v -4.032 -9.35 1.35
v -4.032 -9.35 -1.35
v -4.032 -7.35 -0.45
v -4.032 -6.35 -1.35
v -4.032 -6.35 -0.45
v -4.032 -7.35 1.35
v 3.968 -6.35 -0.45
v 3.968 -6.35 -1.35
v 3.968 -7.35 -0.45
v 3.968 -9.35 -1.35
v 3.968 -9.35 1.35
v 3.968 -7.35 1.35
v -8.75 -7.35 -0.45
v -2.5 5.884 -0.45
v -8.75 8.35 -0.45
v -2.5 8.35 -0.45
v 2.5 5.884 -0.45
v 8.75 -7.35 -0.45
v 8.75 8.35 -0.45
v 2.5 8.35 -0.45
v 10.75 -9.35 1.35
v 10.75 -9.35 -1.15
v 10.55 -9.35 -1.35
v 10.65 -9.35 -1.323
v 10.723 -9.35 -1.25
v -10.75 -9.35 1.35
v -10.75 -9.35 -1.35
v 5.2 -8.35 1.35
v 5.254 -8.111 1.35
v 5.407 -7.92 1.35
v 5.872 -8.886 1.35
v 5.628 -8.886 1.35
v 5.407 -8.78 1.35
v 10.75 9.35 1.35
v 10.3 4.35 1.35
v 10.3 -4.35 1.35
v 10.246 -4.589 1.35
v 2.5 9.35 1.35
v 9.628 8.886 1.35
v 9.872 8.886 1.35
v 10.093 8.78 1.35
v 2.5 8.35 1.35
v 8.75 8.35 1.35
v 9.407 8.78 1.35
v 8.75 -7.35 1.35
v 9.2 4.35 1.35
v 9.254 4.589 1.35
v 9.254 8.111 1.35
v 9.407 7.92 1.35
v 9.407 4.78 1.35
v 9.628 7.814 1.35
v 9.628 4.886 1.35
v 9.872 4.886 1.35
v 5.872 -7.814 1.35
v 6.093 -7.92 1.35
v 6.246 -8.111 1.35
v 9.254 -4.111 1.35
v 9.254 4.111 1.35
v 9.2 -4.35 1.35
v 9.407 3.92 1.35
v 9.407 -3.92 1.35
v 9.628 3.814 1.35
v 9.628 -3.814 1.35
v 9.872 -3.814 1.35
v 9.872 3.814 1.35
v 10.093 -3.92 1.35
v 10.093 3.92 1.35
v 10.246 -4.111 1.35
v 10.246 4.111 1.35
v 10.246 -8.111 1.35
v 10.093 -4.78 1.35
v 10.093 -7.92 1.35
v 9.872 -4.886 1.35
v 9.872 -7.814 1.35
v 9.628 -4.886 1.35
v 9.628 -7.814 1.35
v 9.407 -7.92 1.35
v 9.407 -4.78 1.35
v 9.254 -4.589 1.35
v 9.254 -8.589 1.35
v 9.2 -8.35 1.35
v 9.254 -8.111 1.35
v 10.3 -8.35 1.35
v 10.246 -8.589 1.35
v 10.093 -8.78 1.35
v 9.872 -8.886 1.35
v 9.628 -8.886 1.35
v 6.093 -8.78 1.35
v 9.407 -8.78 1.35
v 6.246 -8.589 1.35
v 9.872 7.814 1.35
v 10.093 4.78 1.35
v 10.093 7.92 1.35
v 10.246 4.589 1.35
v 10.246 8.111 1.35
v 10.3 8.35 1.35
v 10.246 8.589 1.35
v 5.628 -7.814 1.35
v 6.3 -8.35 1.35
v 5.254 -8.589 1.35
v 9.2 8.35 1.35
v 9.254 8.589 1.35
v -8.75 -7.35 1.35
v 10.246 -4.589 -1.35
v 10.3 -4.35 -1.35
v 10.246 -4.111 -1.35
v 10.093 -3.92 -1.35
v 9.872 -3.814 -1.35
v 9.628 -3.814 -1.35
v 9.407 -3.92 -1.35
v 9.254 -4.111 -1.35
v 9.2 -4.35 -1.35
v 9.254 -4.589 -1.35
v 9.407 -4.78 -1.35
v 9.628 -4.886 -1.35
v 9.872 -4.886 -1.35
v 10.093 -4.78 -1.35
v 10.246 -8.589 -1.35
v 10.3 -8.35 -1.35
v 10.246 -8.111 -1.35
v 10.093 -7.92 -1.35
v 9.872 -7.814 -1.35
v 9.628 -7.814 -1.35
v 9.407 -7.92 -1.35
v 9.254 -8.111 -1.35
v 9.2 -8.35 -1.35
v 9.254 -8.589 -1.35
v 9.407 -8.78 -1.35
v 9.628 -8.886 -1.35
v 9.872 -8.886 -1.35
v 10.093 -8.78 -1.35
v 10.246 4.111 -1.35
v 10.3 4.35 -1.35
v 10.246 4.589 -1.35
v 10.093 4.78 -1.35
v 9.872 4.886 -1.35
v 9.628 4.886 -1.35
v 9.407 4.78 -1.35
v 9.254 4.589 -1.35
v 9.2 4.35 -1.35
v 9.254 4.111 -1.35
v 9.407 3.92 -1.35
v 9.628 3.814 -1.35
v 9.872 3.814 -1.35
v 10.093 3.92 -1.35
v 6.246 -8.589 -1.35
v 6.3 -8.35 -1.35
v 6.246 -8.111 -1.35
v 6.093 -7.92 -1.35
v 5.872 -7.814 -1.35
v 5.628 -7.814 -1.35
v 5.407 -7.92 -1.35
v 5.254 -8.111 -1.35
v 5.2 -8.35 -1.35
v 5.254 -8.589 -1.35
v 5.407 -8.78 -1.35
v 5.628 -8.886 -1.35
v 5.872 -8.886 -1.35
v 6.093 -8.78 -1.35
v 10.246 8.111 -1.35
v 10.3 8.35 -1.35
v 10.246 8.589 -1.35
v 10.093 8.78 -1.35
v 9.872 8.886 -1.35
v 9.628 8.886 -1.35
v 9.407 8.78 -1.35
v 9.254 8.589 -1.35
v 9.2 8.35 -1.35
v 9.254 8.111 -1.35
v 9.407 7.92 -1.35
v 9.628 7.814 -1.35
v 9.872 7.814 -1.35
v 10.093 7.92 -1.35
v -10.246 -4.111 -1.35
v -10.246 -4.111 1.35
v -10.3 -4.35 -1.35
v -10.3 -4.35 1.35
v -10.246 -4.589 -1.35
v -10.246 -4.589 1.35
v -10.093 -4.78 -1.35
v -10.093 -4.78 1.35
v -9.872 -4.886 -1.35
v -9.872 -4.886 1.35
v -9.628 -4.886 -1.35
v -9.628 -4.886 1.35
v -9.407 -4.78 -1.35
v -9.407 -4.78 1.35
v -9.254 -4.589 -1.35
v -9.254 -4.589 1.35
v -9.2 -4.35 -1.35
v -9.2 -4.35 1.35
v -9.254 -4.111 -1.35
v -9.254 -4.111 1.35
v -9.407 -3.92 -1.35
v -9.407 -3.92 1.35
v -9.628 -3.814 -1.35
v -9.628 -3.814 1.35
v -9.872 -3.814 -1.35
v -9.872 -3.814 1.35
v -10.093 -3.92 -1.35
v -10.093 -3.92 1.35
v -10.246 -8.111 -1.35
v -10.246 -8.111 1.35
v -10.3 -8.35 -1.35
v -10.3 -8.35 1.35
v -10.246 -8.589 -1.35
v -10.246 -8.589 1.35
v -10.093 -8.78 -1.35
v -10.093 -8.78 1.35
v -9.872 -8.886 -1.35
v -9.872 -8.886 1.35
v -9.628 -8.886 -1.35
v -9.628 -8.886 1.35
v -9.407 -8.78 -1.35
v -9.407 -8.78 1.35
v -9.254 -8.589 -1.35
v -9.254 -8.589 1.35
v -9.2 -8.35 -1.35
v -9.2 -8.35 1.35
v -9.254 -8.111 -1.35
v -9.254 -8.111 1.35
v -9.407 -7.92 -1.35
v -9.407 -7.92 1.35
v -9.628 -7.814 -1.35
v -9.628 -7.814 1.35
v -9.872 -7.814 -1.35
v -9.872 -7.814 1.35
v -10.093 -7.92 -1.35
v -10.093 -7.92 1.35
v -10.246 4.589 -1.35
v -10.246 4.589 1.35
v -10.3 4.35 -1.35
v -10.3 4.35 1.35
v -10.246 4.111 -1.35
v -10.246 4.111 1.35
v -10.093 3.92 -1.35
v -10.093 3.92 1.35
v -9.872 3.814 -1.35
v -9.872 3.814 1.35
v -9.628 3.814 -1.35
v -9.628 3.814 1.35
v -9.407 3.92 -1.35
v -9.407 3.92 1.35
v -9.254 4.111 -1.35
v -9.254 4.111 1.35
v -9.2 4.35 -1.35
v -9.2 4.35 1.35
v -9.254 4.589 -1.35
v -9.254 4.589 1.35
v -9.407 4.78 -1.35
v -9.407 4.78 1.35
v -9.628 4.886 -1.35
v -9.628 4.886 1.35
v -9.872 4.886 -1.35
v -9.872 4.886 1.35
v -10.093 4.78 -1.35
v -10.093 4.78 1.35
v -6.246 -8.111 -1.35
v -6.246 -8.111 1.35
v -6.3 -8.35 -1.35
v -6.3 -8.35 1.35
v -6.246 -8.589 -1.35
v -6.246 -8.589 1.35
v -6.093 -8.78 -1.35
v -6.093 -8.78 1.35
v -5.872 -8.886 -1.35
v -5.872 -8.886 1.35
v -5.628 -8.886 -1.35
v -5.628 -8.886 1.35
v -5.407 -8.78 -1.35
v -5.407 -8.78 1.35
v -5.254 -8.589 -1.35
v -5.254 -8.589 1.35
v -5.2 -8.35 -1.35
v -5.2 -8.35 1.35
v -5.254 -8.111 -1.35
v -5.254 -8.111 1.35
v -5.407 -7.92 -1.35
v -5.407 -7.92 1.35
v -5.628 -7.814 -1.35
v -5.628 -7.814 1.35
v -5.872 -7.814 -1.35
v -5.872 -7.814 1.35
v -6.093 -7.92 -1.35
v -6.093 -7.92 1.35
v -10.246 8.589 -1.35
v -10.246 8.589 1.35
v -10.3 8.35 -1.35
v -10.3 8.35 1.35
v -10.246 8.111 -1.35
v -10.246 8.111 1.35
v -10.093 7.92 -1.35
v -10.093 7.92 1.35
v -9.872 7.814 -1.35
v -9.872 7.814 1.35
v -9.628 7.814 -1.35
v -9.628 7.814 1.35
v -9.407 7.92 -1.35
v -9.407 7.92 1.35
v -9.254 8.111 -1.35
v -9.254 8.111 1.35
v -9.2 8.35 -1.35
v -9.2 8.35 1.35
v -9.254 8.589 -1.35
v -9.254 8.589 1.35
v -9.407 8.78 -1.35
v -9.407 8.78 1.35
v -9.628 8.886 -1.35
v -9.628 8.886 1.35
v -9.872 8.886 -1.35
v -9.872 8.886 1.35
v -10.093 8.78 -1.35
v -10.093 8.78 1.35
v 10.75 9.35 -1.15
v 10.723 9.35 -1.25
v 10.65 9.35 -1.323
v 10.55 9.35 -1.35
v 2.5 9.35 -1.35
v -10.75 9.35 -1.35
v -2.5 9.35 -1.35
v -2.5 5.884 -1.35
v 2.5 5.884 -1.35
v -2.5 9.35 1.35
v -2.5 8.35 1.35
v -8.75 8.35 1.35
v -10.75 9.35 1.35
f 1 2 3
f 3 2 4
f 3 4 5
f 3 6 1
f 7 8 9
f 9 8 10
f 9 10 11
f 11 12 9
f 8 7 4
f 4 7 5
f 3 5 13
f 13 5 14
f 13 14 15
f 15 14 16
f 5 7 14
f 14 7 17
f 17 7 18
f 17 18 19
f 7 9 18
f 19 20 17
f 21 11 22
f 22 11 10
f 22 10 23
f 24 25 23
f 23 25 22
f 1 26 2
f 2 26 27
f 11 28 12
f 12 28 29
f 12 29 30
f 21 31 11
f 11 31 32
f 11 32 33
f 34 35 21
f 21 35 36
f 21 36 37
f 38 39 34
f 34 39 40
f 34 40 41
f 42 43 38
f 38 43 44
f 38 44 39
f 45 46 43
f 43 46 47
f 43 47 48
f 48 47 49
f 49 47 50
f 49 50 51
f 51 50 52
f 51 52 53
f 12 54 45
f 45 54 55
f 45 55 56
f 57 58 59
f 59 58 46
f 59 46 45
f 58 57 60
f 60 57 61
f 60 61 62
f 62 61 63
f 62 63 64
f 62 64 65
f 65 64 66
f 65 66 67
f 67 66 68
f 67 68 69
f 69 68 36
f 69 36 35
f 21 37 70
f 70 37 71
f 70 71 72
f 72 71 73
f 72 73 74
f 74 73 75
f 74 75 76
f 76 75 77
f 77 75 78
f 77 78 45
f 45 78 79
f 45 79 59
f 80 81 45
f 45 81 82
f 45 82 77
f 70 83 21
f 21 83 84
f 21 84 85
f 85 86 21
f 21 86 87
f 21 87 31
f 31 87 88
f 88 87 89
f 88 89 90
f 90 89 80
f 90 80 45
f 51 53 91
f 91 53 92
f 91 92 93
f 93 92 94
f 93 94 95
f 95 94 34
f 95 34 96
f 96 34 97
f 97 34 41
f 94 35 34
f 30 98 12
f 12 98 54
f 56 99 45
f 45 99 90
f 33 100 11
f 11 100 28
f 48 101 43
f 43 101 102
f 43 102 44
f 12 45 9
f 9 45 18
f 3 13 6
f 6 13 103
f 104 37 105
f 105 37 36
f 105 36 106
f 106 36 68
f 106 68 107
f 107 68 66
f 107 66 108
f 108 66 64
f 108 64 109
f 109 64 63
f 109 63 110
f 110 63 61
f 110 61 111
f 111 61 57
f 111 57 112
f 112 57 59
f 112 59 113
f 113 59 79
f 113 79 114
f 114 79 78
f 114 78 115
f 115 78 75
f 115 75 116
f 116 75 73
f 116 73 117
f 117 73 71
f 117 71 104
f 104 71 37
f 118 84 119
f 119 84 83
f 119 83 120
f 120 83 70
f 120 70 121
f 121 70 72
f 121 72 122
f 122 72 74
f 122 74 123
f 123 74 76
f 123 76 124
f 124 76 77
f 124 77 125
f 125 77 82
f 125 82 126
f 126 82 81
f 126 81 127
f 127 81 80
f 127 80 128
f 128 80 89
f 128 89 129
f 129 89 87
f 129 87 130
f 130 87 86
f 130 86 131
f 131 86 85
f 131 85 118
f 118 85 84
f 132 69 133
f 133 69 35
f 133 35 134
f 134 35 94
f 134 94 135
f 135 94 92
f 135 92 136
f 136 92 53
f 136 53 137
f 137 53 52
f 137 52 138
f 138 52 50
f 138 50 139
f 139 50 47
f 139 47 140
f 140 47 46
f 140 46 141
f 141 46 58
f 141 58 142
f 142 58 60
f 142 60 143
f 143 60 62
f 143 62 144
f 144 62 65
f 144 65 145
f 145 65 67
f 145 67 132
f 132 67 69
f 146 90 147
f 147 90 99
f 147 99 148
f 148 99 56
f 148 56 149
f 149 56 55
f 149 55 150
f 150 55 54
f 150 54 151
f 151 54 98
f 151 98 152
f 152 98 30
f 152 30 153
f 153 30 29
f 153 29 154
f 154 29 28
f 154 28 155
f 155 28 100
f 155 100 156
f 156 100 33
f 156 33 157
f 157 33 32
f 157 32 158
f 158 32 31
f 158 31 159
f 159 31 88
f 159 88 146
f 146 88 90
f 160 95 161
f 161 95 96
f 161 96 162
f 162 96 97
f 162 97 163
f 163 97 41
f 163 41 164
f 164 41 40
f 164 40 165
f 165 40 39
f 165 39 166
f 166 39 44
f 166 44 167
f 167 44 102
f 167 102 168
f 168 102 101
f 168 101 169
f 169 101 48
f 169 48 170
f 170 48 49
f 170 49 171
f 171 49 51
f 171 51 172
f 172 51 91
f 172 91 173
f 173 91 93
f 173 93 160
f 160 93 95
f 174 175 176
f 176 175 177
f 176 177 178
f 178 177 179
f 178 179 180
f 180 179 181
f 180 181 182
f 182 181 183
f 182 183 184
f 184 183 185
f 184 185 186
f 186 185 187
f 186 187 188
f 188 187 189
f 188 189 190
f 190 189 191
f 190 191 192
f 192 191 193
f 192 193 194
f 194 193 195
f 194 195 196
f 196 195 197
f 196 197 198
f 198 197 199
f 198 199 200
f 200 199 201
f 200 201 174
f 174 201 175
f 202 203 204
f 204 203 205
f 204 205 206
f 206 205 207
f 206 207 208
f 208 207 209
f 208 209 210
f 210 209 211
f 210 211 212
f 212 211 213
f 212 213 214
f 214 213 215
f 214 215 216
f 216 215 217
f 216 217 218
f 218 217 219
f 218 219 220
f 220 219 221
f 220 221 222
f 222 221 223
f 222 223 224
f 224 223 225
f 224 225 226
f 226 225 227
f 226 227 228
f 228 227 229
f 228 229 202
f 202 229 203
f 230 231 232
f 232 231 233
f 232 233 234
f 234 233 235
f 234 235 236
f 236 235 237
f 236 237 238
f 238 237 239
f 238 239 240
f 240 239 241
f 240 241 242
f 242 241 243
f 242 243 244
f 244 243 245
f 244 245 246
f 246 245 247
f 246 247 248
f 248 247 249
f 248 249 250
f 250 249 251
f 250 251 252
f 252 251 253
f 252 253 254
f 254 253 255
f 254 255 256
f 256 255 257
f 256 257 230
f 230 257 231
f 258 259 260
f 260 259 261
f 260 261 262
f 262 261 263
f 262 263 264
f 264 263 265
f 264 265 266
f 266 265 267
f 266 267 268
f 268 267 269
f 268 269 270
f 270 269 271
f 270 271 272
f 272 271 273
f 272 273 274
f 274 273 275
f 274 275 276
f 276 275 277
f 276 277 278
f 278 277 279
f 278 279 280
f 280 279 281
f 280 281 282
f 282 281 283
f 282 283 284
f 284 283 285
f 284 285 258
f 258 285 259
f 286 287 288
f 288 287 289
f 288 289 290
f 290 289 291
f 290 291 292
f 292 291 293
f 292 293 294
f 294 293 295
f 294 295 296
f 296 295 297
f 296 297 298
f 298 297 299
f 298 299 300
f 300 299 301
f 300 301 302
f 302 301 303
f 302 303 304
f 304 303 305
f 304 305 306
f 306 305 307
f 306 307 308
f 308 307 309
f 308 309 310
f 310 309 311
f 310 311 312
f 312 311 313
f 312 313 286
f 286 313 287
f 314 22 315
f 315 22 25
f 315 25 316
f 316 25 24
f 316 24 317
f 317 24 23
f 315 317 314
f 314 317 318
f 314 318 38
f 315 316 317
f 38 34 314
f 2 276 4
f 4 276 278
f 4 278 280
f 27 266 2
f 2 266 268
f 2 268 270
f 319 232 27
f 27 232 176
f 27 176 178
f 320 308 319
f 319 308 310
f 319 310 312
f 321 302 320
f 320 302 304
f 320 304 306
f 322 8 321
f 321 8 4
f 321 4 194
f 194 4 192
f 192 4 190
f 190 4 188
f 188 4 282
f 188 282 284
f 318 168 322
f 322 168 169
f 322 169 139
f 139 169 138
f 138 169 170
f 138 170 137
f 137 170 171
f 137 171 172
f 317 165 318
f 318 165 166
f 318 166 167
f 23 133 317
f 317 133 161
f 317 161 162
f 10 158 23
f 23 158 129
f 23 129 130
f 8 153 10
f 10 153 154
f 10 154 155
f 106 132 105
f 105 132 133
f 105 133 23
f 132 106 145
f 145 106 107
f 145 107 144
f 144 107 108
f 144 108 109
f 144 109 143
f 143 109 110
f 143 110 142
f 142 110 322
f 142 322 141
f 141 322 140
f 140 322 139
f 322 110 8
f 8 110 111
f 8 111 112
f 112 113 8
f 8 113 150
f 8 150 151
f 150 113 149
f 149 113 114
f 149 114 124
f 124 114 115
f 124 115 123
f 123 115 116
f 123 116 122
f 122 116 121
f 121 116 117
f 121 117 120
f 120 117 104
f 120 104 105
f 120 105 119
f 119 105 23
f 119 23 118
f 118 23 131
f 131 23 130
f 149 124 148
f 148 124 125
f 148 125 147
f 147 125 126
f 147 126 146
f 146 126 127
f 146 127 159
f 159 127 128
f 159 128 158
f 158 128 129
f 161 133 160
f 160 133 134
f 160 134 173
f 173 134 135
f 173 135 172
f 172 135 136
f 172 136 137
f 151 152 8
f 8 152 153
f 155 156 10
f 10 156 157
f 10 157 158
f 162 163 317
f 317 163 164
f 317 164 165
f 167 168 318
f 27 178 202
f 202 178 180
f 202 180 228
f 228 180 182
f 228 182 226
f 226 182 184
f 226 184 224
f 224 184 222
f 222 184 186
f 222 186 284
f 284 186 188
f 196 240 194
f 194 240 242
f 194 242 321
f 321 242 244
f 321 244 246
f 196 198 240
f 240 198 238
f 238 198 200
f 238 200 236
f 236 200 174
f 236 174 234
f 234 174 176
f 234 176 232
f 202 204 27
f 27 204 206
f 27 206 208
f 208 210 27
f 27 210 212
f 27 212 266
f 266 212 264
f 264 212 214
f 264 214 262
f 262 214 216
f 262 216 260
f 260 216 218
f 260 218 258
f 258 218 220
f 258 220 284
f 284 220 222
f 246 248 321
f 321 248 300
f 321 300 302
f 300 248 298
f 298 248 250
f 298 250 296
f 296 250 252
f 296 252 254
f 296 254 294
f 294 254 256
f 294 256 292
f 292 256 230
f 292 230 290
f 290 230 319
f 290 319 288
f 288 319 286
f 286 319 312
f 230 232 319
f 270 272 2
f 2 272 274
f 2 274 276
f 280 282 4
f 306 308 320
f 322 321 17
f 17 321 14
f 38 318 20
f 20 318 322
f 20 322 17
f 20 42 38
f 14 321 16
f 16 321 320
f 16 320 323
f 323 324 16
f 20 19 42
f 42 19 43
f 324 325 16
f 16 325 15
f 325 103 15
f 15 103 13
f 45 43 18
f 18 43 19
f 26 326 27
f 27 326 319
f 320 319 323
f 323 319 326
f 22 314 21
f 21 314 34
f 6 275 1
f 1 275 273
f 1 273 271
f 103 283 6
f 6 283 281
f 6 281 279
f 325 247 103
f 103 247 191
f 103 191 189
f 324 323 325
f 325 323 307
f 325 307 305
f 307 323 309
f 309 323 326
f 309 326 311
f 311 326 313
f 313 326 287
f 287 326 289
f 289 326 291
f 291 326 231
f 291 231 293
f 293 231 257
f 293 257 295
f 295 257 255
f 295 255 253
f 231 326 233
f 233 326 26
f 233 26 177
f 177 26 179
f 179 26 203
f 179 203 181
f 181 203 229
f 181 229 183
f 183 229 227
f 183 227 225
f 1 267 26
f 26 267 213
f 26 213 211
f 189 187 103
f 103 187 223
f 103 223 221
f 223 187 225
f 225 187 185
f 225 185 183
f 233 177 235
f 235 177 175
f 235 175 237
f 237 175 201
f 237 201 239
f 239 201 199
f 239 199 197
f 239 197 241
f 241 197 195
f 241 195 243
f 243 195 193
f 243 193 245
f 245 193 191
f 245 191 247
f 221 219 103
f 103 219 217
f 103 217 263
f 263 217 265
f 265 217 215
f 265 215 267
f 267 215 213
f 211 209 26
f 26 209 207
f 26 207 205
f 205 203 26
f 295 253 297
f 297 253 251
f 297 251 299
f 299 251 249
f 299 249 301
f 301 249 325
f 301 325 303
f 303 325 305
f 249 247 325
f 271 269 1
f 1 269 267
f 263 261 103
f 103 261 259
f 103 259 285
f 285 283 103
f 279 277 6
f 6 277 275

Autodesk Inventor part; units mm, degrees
sketch "Sketch1" plane through (0, 0, 0) normal (0, 0, 1) x (1, 0, 0)
  line L0 (-10.75, -9.35) -> (10.75, -9.35)
  line L1 (10.75, -9.35) -> (10.75, 9.35)
  line L2 (10.75, 9.35) -> (-10.75, 9.35)
  line L3 (-10.75, 9.35) -> (-10.75, -9.35)
  line L4 (-10.75, -9.35) -> (10.75, 9.35) construction
  line L5 (10.75, -9.35) -> (-10.75, 9.35) construction
  point P0 (0, 0)
  dimension "d0" = 21.5
  dimension "d1" = 18.7
extrude "Extrusion1" add sketch "Sketch1" along normal mid plane 2.7
sketch "Sketch3" plane through (0, 0, 1.35) normal (0, 0, 1) x (1, 0, 0)
  line L0 (-8.75, -7.35) -> (8.75, -7.35)
  line L1 (8.75, -7.35) -> (8.75, 8.35)
  line L2 (8.75, 8.35) -> (-8.75, 8.35)
  line L3 (-8.75, 8.35) -> (-8.75, -7.35)
  line L4 (-8.75, -7.35) -> (8.75, 8.35) construction
  line L5 (8.75, -7.35) -> (-8.75, 8.35) construction
  line L6 (-10.75, -9.35) -> (10.75, -9.35)
  point P0 (0, 0.5)
  dimension "d8" = 17.5
  dimension "d47" = 2
  dimension "d61" = 15.7
extrude "Extrusion3" cut sketch "Sketch3" against normal blind 1.8
sketch "Sketch4" plane through (0, 0, 1.35) normal (0, 0, 1) x (1, 0, 0)
  line L0 (2.5, 5.884) -> (-2.5, 5.884)
  line L1 (-2.5, 5.884) -> (-2.5, 12.884)
  line L2 (-2.5, 12.884) -> (2.5, 12.884)
  line L3 (2.5, 12.884) -> (2.5, 5.884)
  line L4 (2.5, 5.884) -> (-2.5, 12.884) construction
  line L5 (-2.5, 5.884) -> (2.5, 12.884) construction
  point P0 (0, 0)
  point P1 (0, 9.384)
  dimension "d12" = 5
  dimension "d15" = 7
extrude "Extrusion4" cut sketch "Sketch4" against normal blind 3
sketch "Sketch7" plane through (-10.75, 0.5, 6.442) normal (1, 0, 0) x (0, -1, 0)
  line L0 (3.5, 6.442) -> (-2.5, 6.442)
  line L1 (-2.5, 6.442) -> (-2.5, 9.442)
  line L2 (-2.5, 9.442) -> (3.5, 9.442)
  line L3 (3.5, 9.442) -> (3.5, 6.442)
  line L4 (3.5, 6.442) -> (-2.5, 9.442) construction
  line L5 (-2.5, 6.442) -> (3.5, 9.442) construction
  line L6 (0.5, -1.8884) -> (0.5, 11.3304) projected
  line L7 (-8.85, 7.792) -> (-8.85, 5.092) projected
  point P0 (0, 0)
  point P1 (0.5, 7.942)
  point P2 (0.5, 7.942)
  point P3 (0.5, -1.8884)
  point P4 (0.5, 11.3304)
  point P5 (-8.85, 6.442)
  dimension "d24" = 6
  dimension "d23" = 3
extrude "Extrusion7" [suppressed]
fillet "Fillet1" [suppressed]
fillet "Fillet2" [suppressed]
fillet "Fillet3" [suppressed]
fillet "Fillet4" [suppressed]
fillet "Fillet5" [suppressed]
fillet "Fillet6" radius 0.2 1 edges at (10.75, 0, -1.35)
fillet "Fillet7" [suppressed]
fillet "Fillet8" [suppressed]
fillet "Fillet9" [suppressed]
fillet "Fillet10" [suppressed]
fillet "Fillet11" [suppressed]
mirror "Mirror2" [suppressed]
sketch "InsertPoles_Sketch" plane through (0, 0, 1.35) normal (0, 0, 1) x (1, 0, 0)
  circle A0 centre (-9.75, -8.35) radius 0.55
  line L0 (-10.75, 9.35) -> (-10.75, -9.35) projected
  line L1 (-10.75, -9.35) -> (10.75, -9.35) projected
  circle A1 centre (-9.75, -4.35) radius 0.55
  circle A2 centre (-9.75, 4.35) radius 0.55
  circle A3 centre (-9.75, 8.35) radius 0.55
  circle A4 centre (-5.75, -8.35) radius 0.55
  line L2 (-2.5, 9.35) -> (-10.75, 9.35) projected
  point P0 (0, 0)
  point P1 (-8.75, 9.35)
  dimension "d39" = 1.1
  dimension "d40" = 1
  dimension "d41" = 1
  dimension "d42" = 1.1
  dimension "d43" = 1.1
  dimension "d44" = 1.1
  dimension "d45" = 1.1
  dimension "d48" = 4
  dimension "d49" = 1
  dimension "d50" = 1
  dimension "d51" = 4
  dimension "d52" = 4
extrude "InsertPoles_Extrude" cut sketch "InsertPoles_Sketch" against normal blind 3
mirror "MirrorInsertPoles" about plane through (0, 0, 0) normal (1, 0, 0) of "InsertPoles_Extrude"
sketch "RibbonCableCutout_Sketch" plane through (0, 0, 1.35) normal (0, 0, 1) x (1, 0, 0)
  line L0 (3, -7.0087) -> (-3, -7.0087)
  line L1 (-3, -7.0087) -> (-3, -9.0087)
  line L2 (-3, -9.0087) -> (3, -9.0087)
  line L3 (3, -9.0087) -> (3, -7.0087)
  line L4 (3, -7.0087) -> (-3, -9.0087) construction
  line L5 (-3, -7.0087) -> (3, -9.0087) construction
  line L6 (0, 13.09) -> (0, -13.09) projected
  point P0 (0, 0)
  point P1 (0, -8.0087)
  point P2 (0, -8.0087)
  dimension "d56" = 6
  dimension "d57" = 2
extrude "RibbonCableCutout_Extrude" [suppressed]
fillet "Fillet12" [suppressed]
sketch "Sketch11" plane through (-0.0016, -9.35, -6.4418) normal (0, -1, 0) x (1, 0, 0)
  line L0 (3.9693, 3.0494) -> (-4.0307, 3.0494)
  line L1 (-4.0307, 3.0494) -> (-4.0307, 10.0494)
  line L2 (-4.0307, 10.0494) -> (3.9693, 10.0494)
  line L3 (3.9693, 10.0494) -> (3.9693, 3.0494)
  line L4 (3.9693, 3.0494) -> (-4.0307, 10.0494) construction
  line L5 (-4.0307, 3.0494) -> (3.9693, 10.0494) construction
  point P0 (0, 0)
  point P1 (-0.0307, 6.5494)
  dimension "d63" = 8
  dimension "d62" = 7
extrude "Extrusion10" cut sketch "Sketch11" against normal blind 3
properties part number "Checkpoint10.2_BackCover"
